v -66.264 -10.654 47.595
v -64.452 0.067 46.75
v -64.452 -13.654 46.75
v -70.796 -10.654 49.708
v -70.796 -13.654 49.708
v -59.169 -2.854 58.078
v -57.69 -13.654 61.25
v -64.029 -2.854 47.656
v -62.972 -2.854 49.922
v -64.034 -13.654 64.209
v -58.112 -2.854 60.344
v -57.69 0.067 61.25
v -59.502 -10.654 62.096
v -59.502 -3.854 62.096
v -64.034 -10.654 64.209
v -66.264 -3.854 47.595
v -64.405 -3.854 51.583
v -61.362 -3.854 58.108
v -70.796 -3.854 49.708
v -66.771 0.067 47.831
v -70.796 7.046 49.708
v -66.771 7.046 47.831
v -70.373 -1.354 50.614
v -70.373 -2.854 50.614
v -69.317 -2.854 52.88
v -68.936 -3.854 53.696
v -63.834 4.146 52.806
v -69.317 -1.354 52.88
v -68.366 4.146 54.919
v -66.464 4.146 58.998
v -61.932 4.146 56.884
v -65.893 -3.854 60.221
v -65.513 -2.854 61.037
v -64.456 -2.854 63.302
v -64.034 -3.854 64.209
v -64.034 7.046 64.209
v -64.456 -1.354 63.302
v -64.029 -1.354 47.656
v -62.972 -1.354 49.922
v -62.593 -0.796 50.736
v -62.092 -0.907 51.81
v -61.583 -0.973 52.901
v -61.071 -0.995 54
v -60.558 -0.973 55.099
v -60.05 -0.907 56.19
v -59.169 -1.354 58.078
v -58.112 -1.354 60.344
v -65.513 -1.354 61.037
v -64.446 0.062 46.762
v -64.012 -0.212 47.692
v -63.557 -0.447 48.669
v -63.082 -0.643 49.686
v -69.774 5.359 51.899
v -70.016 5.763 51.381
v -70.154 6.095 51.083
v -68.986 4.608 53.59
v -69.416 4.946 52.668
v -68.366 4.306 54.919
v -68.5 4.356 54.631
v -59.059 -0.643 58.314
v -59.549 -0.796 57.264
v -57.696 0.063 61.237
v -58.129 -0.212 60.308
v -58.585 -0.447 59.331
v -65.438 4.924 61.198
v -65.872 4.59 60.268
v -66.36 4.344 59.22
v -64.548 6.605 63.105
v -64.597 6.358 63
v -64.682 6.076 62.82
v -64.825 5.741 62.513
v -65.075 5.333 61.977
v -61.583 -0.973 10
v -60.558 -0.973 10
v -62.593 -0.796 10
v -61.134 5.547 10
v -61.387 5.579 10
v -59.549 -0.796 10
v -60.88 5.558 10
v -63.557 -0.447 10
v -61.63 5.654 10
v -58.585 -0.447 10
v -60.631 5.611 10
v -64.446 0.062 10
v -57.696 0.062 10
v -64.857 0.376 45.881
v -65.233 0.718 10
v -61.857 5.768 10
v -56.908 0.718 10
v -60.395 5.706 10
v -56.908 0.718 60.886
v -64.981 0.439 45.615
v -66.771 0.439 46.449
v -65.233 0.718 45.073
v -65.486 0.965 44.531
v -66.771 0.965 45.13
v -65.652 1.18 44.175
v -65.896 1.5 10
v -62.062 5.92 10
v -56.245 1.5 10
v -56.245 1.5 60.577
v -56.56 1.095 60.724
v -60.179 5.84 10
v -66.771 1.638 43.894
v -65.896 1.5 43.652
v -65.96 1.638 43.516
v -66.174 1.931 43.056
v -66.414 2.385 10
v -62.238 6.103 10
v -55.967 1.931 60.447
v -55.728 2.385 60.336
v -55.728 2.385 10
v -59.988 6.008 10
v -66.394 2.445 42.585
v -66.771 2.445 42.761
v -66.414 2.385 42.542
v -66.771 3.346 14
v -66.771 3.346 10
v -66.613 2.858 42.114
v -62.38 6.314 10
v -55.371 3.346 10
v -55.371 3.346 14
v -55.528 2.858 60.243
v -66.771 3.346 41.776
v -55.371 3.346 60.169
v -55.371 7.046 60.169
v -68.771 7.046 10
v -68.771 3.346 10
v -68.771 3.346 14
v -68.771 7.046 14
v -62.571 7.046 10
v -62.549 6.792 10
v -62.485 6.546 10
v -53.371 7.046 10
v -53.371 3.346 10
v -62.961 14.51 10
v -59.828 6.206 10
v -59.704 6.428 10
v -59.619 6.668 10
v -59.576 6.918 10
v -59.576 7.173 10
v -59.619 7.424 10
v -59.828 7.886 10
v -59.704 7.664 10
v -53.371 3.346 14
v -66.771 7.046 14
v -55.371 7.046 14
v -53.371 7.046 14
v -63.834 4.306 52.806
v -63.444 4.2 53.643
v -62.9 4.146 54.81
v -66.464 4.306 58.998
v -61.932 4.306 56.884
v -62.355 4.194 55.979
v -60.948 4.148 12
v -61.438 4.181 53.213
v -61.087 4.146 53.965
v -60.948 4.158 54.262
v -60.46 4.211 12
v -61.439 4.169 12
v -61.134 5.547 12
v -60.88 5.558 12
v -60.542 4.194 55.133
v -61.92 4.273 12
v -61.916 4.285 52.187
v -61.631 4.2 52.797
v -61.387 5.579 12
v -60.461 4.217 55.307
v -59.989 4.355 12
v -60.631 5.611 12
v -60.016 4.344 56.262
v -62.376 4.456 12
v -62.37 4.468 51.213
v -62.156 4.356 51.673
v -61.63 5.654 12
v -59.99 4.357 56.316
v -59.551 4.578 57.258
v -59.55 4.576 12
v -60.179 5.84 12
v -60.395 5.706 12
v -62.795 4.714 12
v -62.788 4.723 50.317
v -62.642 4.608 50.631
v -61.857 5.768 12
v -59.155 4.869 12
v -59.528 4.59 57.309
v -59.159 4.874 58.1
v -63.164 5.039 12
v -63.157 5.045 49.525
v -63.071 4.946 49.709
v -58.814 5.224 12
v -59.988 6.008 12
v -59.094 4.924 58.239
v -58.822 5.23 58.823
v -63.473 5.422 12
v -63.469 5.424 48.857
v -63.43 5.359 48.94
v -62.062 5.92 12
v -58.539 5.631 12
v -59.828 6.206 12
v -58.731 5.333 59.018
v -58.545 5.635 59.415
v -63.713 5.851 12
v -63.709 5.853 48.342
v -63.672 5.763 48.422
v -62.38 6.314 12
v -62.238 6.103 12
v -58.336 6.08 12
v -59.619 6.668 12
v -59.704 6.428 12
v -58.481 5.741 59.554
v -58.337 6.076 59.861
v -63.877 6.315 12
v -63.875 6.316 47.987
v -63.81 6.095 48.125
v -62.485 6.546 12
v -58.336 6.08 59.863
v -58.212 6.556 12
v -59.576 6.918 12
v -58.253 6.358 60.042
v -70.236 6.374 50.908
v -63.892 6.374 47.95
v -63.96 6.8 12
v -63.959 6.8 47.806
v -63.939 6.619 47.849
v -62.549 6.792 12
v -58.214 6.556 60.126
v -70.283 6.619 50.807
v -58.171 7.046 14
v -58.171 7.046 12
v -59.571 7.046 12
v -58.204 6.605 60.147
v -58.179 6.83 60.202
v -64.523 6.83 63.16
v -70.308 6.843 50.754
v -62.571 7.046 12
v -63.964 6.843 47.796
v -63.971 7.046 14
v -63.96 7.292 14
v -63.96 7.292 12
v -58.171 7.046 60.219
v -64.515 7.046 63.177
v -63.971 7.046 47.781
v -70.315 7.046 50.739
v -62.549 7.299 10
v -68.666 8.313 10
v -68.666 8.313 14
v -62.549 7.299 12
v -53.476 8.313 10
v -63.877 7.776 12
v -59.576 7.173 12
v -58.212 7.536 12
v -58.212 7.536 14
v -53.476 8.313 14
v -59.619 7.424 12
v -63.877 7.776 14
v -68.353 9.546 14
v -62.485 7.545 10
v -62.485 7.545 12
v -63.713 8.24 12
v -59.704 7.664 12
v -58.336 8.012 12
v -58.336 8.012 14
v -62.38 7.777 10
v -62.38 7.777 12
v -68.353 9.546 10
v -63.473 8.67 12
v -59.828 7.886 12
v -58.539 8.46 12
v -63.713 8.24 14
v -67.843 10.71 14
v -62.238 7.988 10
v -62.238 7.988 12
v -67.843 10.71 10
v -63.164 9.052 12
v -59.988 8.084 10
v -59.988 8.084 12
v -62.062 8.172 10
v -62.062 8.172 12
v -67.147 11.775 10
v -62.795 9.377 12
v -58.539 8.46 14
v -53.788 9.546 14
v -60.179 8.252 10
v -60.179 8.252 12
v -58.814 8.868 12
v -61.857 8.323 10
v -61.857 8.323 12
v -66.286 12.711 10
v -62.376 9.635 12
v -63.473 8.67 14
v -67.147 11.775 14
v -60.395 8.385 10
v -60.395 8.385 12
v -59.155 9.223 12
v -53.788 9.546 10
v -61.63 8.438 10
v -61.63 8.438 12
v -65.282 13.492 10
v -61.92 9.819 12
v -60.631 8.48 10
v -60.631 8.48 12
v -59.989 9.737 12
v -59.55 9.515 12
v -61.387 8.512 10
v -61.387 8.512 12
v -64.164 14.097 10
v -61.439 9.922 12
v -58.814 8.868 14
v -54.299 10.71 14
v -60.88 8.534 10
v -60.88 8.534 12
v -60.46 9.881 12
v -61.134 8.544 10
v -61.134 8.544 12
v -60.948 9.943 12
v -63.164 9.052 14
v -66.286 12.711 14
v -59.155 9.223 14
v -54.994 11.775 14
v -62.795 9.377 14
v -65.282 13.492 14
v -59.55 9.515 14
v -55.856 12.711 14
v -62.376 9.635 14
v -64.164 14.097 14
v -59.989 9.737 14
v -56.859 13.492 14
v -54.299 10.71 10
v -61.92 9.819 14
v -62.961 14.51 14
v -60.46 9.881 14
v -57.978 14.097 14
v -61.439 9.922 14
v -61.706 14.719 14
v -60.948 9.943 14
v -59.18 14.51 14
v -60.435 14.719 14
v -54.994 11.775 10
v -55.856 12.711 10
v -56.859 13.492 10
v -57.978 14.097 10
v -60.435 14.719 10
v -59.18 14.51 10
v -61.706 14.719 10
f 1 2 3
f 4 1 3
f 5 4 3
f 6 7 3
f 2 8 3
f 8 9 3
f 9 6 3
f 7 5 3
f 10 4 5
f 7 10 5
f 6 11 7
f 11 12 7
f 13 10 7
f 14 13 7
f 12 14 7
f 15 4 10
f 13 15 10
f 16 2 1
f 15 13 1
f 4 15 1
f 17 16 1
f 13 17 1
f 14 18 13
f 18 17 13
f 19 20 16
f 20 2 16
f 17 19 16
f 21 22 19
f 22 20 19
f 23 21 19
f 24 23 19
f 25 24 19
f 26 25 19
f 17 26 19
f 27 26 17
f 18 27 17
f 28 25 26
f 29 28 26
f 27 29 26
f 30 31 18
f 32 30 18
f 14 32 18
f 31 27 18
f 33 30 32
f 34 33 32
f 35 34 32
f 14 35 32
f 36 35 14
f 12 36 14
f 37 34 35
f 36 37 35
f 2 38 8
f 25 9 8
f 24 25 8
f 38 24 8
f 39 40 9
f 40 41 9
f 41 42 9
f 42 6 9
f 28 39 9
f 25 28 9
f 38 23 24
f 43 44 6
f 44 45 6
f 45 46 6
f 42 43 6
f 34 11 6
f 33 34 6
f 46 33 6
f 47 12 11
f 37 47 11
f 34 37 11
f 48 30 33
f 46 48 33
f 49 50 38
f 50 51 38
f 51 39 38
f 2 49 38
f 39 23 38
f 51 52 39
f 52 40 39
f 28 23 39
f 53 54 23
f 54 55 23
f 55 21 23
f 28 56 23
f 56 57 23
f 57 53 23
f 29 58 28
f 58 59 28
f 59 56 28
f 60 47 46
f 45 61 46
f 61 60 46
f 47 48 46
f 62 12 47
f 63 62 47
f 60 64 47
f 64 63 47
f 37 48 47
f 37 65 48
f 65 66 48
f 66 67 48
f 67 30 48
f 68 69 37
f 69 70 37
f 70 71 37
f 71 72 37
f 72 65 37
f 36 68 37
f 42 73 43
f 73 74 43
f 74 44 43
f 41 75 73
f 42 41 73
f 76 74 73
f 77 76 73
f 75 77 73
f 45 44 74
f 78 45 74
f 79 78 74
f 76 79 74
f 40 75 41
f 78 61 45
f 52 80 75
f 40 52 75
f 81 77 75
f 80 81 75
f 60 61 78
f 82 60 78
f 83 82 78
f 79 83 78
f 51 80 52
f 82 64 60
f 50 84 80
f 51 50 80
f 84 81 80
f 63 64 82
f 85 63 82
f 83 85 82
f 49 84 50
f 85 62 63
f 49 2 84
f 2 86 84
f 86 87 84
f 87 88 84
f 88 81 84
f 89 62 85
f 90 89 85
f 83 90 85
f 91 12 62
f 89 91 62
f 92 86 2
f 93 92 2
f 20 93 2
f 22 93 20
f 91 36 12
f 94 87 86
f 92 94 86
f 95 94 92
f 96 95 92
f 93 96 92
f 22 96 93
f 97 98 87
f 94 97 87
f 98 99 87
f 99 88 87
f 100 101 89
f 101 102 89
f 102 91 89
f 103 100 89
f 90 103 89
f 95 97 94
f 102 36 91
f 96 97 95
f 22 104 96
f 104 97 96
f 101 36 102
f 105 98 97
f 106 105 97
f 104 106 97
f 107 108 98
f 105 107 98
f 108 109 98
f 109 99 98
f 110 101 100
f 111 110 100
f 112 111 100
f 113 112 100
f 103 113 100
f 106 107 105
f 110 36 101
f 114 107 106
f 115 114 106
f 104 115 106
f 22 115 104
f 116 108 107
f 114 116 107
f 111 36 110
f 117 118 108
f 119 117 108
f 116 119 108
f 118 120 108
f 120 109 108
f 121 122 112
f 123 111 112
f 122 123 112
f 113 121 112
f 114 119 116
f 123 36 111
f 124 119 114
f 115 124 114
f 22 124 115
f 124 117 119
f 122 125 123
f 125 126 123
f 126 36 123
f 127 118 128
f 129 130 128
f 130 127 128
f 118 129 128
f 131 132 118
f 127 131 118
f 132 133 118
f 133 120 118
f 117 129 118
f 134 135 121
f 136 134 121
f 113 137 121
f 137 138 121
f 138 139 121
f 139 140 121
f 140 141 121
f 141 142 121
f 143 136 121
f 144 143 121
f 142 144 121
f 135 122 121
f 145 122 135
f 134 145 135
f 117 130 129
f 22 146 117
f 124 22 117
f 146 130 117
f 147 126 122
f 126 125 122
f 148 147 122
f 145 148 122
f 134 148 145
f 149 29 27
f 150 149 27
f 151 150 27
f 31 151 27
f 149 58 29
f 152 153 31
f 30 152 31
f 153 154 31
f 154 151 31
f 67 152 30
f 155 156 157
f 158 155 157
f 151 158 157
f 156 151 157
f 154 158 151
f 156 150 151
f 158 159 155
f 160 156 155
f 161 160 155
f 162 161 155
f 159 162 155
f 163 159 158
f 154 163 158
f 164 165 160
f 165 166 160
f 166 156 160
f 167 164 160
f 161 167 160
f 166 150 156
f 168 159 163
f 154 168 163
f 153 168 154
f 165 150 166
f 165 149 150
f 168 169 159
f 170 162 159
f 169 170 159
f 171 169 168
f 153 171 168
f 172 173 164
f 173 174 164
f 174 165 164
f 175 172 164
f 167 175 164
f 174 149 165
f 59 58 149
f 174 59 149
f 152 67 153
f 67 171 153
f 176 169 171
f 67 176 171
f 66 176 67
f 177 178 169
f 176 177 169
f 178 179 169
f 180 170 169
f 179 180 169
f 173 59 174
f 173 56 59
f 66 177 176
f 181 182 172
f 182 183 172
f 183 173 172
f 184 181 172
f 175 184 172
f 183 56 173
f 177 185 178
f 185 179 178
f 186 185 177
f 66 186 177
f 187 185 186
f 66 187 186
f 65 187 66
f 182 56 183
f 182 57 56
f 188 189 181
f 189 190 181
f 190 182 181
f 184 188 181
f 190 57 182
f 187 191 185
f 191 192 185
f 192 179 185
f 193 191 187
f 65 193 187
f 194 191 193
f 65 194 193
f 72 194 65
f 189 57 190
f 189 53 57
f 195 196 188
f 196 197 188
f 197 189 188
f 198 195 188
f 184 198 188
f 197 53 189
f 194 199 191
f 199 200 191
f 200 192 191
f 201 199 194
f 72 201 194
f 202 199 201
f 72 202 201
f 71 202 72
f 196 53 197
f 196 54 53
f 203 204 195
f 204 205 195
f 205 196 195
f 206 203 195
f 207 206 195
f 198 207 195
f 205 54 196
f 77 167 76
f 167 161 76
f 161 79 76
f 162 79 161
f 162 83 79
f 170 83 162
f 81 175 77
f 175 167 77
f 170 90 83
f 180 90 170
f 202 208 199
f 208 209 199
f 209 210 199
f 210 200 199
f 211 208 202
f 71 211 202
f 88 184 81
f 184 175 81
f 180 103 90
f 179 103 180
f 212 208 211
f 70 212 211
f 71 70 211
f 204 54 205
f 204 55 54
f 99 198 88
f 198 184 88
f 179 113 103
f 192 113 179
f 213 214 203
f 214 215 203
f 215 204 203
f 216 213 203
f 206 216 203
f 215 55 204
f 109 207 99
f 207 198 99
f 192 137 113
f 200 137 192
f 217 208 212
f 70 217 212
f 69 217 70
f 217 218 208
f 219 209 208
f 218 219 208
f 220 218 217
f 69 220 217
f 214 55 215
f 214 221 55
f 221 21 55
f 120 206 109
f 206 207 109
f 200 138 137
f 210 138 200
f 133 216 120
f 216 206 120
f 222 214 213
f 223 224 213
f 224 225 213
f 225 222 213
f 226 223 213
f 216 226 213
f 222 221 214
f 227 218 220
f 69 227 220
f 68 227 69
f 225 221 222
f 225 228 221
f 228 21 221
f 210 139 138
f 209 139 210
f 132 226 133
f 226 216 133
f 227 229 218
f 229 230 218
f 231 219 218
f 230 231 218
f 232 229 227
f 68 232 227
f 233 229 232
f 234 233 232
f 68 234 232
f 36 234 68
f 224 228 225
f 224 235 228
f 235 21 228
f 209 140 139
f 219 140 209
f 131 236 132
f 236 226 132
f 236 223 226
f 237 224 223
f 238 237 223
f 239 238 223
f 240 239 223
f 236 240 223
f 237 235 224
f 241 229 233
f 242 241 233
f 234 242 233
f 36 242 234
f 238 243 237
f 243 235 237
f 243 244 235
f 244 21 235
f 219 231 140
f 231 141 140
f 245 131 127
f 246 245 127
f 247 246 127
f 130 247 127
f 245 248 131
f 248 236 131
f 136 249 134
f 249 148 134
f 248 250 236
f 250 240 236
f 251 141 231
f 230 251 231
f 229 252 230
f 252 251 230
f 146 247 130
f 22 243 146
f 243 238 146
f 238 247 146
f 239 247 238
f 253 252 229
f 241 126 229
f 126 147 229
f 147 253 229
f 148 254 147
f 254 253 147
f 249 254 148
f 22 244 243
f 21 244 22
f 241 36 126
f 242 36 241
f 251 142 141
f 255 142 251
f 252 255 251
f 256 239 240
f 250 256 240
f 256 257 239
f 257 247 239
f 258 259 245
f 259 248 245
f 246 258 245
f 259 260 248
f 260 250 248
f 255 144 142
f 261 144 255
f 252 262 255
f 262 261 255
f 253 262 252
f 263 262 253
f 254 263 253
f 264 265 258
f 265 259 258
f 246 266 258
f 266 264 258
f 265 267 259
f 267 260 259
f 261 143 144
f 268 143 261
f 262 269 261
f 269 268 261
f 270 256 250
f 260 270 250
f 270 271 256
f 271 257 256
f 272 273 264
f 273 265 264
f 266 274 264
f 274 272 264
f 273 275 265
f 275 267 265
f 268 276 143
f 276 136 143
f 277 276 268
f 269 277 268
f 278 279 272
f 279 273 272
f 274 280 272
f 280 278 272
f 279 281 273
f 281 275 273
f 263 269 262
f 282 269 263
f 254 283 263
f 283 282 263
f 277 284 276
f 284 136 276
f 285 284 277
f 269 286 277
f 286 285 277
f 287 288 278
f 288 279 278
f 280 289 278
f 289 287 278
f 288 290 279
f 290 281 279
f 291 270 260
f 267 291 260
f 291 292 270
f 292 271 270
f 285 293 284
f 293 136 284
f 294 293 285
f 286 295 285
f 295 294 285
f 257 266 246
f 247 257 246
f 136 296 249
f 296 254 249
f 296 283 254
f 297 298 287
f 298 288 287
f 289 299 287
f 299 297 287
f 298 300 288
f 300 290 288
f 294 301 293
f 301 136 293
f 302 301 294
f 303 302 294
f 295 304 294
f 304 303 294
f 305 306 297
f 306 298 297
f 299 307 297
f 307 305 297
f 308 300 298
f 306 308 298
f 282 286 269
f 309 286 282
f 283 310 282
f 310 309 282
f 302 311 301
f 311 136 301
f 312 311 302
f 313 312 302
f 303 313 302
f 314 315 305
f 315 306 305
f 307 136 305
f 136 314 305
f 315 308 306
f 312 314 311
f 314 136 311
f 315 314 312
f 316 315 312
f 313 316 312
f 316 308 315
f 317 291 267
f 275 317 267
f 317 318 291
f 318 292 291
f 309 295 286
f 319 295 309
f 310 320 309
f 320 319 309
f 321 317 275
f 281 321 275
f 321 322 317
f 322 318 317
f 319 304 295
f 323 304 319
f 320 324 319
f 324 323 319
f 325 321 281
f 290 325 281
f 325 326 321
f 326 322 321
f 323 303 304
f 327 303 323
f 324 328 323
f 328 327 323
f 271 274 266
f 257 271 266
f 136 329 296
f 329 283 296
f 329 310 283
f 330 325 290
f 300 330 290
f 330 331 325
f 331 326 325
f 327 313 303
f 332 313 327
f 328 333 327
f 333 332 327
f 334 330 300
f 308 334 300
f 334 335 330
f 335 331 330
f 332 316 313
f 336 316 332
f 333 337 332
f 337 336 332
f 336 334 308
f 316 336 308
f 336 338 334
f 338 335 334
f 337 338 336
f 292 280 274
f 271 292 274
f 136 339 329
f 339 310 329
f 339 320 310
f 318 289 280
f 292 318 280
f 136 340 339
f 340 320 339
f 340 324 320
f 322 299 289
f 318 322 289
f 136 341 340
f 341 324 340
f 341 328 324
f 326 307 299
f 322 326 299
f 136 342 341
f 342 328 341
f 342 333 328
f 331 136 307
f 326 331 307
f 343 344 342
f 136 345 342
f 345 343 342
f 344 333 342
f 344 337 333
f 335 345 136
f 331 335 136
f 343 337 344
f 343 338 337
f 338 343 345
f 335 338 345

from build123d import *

# Parameters (mm, degrees)
CROQUIS1_R                = 1.5
SALIENTE_EXTRUIR1_DEPTH   = 4
CROQUIS2_R                = 2.9
CORTAR_EXTRUIR1_DEPTH     = 2
SALIENTE_EXTRUIR2_DEPTH   = 65
CORTAR_EXTRUIR2_OUTLINE_W = 7.281077338
CORTAR_EXTRUIR2_OUTLINE_H = 8.780929931
CORTAR_EXTRUIR2_DEPTH     = 8.6
CORTAR_EXTRUIR2_TAPER     = -65
CROQUIS5_W                = 41.142355125
CROQUIS5_H                = 35.377069929
CORTAR_EXTRUIR3_DEPTH     = 10
SALIENTE_EXTRUIR3_DEPTH   = 7
CORTAR_EXTRUIR4_DEPTH     = 5
CORTAR_EXTRUIR5_START     = -7
CROQUIS8_W                = 2.5
CROQUIS8_H                = 1.5
CORTAR_EXTRUIR5_DEPTH     = 7
CORTAR_EXTRUIR6_DEPTH     = 10
SALIENTE_EXTRUIR4_DEPTH   = 3.7
SALIENTE_EXTRUIR5_DEPTH   = 2.558793
CORTAR_EXTRUIR7_DEPTH     = 10
CROQUIS14_W               = 20.903204772
CROQUIS14_H               = 28.789293723
CORTAR_EXTRUIR8_DEPTH     = 10
SALIENTE_EXTRUIR6_START   = -4
CROQUIS15_R               = 1.5
SALIENTE_EXTRUIR6_DEPTH   = 4
CROQUIS16_R               = 2.9
CORTAR_EXTRUIR9_DEPTH     = 2
SALIENTE_EXTRUIR7_START   = -4
SALIENTE_EXTRUIR7_DEPTH   = 4


# Read off the part's stored shape, not the designer's step: Cortar-Extruir2
with BuildPart() as part:
    # Croquis1 → Saliente-Extruir1 (new body)
    with BuildSketch(Plane.XY):
        with BuildLine():
            Line((-55.370631899, 7.045687646), (-55.370631899, 3.345687646))
            ThreePointArc((-55.370631899, 3.345687646), (-61.070631899, -0.995420457), (-66.770631899, 3.345687646))
            Line((-66.770631899, 3.345687646), (-66.770631899, 7.045687646))
            ThreePointArc((-66.770631899, 7.045687646), (-61.070631899, 12.745687646), (-55.370631899, 7.045687646))
        make_face()
        with Locations((-61.070631899, 7.045687646)):
            Circle(CROQUIS1_R, mode=Mode.SUBTRACT)
    extrude(amount=SALIENTE_EXTRUIR1_DEPTH)

    # Croquis2 → Cortar-Extruir1 (cut)
    with BuildSketch(Plane.XY.offset(4)):
        with Locations((-61.070631899, 7.045687646)):
            Circle(CROQUIS2_R)
    extrude(amount=-CORTAR_EXTRUIR1_DEPTH, mode=Mode.SUBTRACT)

    # Croquis3 → Saliente-Extruir2 (add)
    with BuildSketch(Plane.XY.offset(4)):
        with BuildLine():
            Line((-63.970631899, 7.045687646), (-66.770631899, 7.045687646))
            Line((-66.770631899, 7.045687646), (-66.770631899, 3.345687646))
            ThreePointArc((-66.770631899, 3.345687646), (-61.070631899, -0.995420457), (-55.370631899, 3.345687646))
            Line((-55.370631899, 3.345687646), (-55.370631899, 7.045687646))
            Line((-55.370631899, 7.045687646), (-58.170631899, 7.045687646))
            ThreePointArc((-58.170631899, 7.045687646), (-61.070631899, 4.145687646), (-63.970631899, 7.045687646))
        make_face()
    extrude(amount=SALIENTE_EXTRUIR2_DEPTH)

    # Cortar-Extruir2 outline → Cortar-Extruir2 (cut)
    with BuildSketch(Plane.YZ.offset(-58.170631899)):
        with Locations((3.405148977, 64.609535034)):
            Rectangle(CORTAR_EXTRUIR2_OUTLINE_W, CORTAR_EXTRUIR2_OUTLINE_H)
    extrude(amount=-CORTAR_EXTRUIR2_DEPTH, taper=CORTAR_EXTRUIR2_TAPER, mode=Mode.SUBTRACT)

    # Croquis5 → Cortar-Extruir3 (cut)
    with BuildSketch(Plane(origin=(-70.846238664, 0, 33.03614364), x_dir=(0.422618261740701, 0, 0.9063077870366493), z_dir=(-0.9063077870366493, 1.4037441023509523e-15, 0.422618261740701))):
        with Locations((23.845262034, -3.548141358)):
            Rectangle(CROQUIS5_W, CROQUIS5_H)
    extrude(amount=CORTAR_EXTRUIR3_DEPTH, mode=Mode.SUBTRACT)

    # Croquis6 → Saliente-Extruir3 (add)
    with BuildSketch(Plane(origin=(-70.846238664, 0, 33.03614364), x_dir=(0.422618261740701, 0, 0.9063077870366493), z_dir=(-0.9063077870366493, 1.4037441023509523e-15, 0.422618261740701))):
        with BuildLine():
            Line((31.131056203, 7.045687646), (29.993040795, 7.045687646))
            add(Edge.make_bspline(
                [(16.269071612, 7.045687646), (16.269071612, 4.145687646), (23.131056203, 4.145687646), (29.993040795, 4.145687646), (29.993040795, 7.045687646)],
                knots=[3.141592654, 3.141592654, 3.141592654, 4.71238898, 4.71238898, 6.283185307, 6.283185307, 6.283185307], degree=2, weights=[1, 0.707106781, 1, 0.707106781, 1]))
            Line((16.269071612, 7.045687646), (15.131056203, 7.045687646))
            Line((15.131056203, 7.045687646), (15.131056203, -13.654312354))
            Line((15.131056203, -13.654312354), (31.131056203, -13.654312354))
            Line((31.131056203, -13.654312354), (31.131056203, 7.045687646))
        make_face()
    extrude(amount=SALIENTE_EXTRUIR3_DEPTH)

    # Croquis7 → Cortar-Extruir4 (cut)
    with BuildSketch(Plane(origin=(-77.190393173, 0, 35.994471473), x_dir=(0.42261826174070094, 0, 0.9063077870366492), z_dir=(-0.9063077870366493, 1.403744102350952e-15, 0.422618261740701))):
        with BuildLine():
            Line((25.381056203, 4.145687646), (26.731056203, -3.854312354))
            Line((26.731056203, -3.854312354), (31.131056203, -3.854312354))
            Line((31.131056203, -3.854312354), (31.131056203, -10.654312354))
            Line((31.131056203, -10.654312354), (15.131056203, -10.654312354))
            Line((15.131056203, -10.654312354), (15.131056203, -3.854312354))
            Line((15.131056203, -3.854312354), (19.531056203, -3.854312354))
            Line((19.531056203, -3.854312354), (20.881056203, 4.145687646))
            Line((20.881056203, 4.145687646), (20.881056203, 4.306015013))
            add(Edge.make_bspline(
                [(20.881056203, 4.306015013), (23.131056203, 3.97597782), (25.381056203, 4.306015013)],
                knots=[4.378316067, 4.378316067, 4.378316067, 5.046461894, 5.046461894, 5.046461894], degree=2, weights=[1, 0.944714701, 1]))
            Line((25.381056203, 4.306015013), (25.381056203, 4.145687646))
        make_face()
    extrude(amount=-CORTAR_EXTRUIR4_DEPTH, mode=Mode.SUBTRACT)

    # Croquis8 → Cortar-Extruir5 (cut)
    with BuildSketch(Plane(origin=(-77.190393173, 0, 35.994471473), x_dir=(0.42261826174070094, 0, 0.9063077870366492), z_dir=(-0.9063077870366493, 1.403744102350952e-15, 0.422618261740701)).offset(CORTAR_EXTRUIR5_START)):
        with Locations((17.381056203, -2.104312354)):
            Rectangle(CROQUIS8_W, CROQUIS8_H)
        with Locations((28.881056203, -2.104312354)):
            Rectangle(CROQUIS8_W, CROQUIS8_H)
    extrude(amount=CORTAR_EXTRUIR5_DEPTH, mode=Mode.SUBTRACT)

    # Croquis9 → Cortar-Extruir6 (cut)
    with BuildSketch(Plane(origin=(0, 7.045687646, 0), x_dir=(1, 0, 0), z_dir=(0, 1, 0))):
        Polygon((-57.689685805, -61.250462296), (-55.370631899, -60.1690697), (-55.370631899, -66.223689447), align=None)
    extrude(amount=-CORTAR_EXTRUIR6_DEPTH, mode=Mode.SUBTRACT)

    # Croquis10 → Saliente-Extruir4 (add)
    with BuildSketch(Plane(origin=(0, 7.045687646, 0), x_dir=(1, 0, 0), z_dir=(0, 1, 0))):
        Polygon((-66.770631899, -41.776310553), (-66.770631899, -47.8309303), (-64.451577993, -46.749537704), align=None)
    extrude(amount=-SALIENTE_EXTRUIR4_DEPTH)

    # Croquis12 → Saliente-Extruir5 (add)
    with BuildSketch(Plane(origin=(-70.846238664, 0, 33.03614364), x_dir=(0.422618261740701, 0, 0.9063077870366493), z_dir=(-0.9063077870366493, 1.4037441023509523e-15, 0.422618261740701))):
        with BuildLine():
            Line((15.131056203, 3.345687646), (15.131056203, 0.066589345))
            ThreePointArc((15.131056203, 0.066589345), (12.129139109, 1.273987016), (9.64370718, 3.345687646))
            Line((9.64370718, 3.345687646), (15.131056203, 3.345687646))
        make_face()
    extrude(amount=SALIENTE_EXTRUIR5_DEPTH)

    # Croquis13 → Cortar-Extruir7 (cut)
    with BuildSketch(Plane(origin=(0, 3.345687646, 0), x_dir=(1, 0, 0), z_dir=(0, 1, 0))):
        Polygon((-66.770631899, -47.8309303), (-66.770631899, -41.776310553), (-69.089685805, -42.857703149), align=None)
    extrude(amount=-CORTAR_EXTRUIR7_DEPTH, mode=Mode.SUBTRACT)

    # Croquis14 → Cortar-Extruir8 (cut)
    with BuildSketch(Plane(origin=(0, 0, 0), x_dir=(-1, 0, 0), z_dir=(0, 0, -1))):
        with Locations((60.961327713, 6.880035774)):
            Rectangle(CROQUIS14_W, CROQUIS14_H)
    extrude(amount=-CORTAR_EXTRUIR8_DEPTH, mode=Mode.SUBTRACT)

    # Croquis15 → Saliente-Extruir6 (add)
    with BuildSketch(Plane(origin=(0, 0, 10), x_dir=(-1, 0, 0), z_dir=(0, 0, -1)).offset(SALIENTE_EXTRUIR6_START)):
        with BuildLine():
            ThreePointArc((55.370631899, 7.045687646), (61.070631899, 12.745687646), (66.770631899, 7.045687646))
            Line((66.770631899, 7.045687646), (63.970631899, 7.045687646))
            ThreePointArc((63.970631899, 7.045687646), (61.070631899, 4.145687646), (58.170631899, 7.045687646))
            Line((58.170631899, 7.045687646), (55.370631899, 7.045687646))
        make_face()
        with Locations((61.070631899, 7.045687646)):
            Circle(CROQUIS15_R, mode=Mode.SUBTRACT)
    extrude(amount=SALIENTE_EXTRUIR6_DEPTH)

    # Croquis16 → Cortar-Extruir9 (cut)
    with BuildSketch(Plane.XY.offset(14)):
        with Locations((-61.070631899, 7.045687646)):
            Circle(CROQUIS16_R)
    extrude(amount=-CORTAR_EXTRUIR9_DEPTH, mode=Mode.SUBTRACT)

    # Croquis17 → Saliente-Extruir7 (add)
    with BuildSketch(Plane(origin=(0, 0, 10), x_dir=(-1, 0, 0), z_dir=(0, 0, -1)).offset(SALIENTE_EXTRUIR7_START)):
        with BuildLine():
            Line((55.370631899, 3.345687646), (53.370631899, 3.345687646))
            Line((53.370631899, 3.345687646), (53.370631899, 7.045687646))
            ThreePointArc((53.370631899, 7.045687646), (61.070631899, 14.745687646), (68.770631899, 7.045687646))
            Line((68.770631899, 7.045687646), (68.770631899, 3.345687646))
            Line((68.770631899, 3.345687646), (66.770631899, 3.345687646))
            Line((66.770631899, 3.345687646), (66.770631899, 7.045687646))
            ThreePointArc((66.770631899, 7.045687646), (61.070631899, 12.745687646), (55.370631899, 7.045687646))
            Line((55.370631899, 7.045687646), (55.370631899, 3.345687646))
        make_face()
    extrude(amount=SALIENTE_EXTRUIR7_DEPTH)


solid = part.part
